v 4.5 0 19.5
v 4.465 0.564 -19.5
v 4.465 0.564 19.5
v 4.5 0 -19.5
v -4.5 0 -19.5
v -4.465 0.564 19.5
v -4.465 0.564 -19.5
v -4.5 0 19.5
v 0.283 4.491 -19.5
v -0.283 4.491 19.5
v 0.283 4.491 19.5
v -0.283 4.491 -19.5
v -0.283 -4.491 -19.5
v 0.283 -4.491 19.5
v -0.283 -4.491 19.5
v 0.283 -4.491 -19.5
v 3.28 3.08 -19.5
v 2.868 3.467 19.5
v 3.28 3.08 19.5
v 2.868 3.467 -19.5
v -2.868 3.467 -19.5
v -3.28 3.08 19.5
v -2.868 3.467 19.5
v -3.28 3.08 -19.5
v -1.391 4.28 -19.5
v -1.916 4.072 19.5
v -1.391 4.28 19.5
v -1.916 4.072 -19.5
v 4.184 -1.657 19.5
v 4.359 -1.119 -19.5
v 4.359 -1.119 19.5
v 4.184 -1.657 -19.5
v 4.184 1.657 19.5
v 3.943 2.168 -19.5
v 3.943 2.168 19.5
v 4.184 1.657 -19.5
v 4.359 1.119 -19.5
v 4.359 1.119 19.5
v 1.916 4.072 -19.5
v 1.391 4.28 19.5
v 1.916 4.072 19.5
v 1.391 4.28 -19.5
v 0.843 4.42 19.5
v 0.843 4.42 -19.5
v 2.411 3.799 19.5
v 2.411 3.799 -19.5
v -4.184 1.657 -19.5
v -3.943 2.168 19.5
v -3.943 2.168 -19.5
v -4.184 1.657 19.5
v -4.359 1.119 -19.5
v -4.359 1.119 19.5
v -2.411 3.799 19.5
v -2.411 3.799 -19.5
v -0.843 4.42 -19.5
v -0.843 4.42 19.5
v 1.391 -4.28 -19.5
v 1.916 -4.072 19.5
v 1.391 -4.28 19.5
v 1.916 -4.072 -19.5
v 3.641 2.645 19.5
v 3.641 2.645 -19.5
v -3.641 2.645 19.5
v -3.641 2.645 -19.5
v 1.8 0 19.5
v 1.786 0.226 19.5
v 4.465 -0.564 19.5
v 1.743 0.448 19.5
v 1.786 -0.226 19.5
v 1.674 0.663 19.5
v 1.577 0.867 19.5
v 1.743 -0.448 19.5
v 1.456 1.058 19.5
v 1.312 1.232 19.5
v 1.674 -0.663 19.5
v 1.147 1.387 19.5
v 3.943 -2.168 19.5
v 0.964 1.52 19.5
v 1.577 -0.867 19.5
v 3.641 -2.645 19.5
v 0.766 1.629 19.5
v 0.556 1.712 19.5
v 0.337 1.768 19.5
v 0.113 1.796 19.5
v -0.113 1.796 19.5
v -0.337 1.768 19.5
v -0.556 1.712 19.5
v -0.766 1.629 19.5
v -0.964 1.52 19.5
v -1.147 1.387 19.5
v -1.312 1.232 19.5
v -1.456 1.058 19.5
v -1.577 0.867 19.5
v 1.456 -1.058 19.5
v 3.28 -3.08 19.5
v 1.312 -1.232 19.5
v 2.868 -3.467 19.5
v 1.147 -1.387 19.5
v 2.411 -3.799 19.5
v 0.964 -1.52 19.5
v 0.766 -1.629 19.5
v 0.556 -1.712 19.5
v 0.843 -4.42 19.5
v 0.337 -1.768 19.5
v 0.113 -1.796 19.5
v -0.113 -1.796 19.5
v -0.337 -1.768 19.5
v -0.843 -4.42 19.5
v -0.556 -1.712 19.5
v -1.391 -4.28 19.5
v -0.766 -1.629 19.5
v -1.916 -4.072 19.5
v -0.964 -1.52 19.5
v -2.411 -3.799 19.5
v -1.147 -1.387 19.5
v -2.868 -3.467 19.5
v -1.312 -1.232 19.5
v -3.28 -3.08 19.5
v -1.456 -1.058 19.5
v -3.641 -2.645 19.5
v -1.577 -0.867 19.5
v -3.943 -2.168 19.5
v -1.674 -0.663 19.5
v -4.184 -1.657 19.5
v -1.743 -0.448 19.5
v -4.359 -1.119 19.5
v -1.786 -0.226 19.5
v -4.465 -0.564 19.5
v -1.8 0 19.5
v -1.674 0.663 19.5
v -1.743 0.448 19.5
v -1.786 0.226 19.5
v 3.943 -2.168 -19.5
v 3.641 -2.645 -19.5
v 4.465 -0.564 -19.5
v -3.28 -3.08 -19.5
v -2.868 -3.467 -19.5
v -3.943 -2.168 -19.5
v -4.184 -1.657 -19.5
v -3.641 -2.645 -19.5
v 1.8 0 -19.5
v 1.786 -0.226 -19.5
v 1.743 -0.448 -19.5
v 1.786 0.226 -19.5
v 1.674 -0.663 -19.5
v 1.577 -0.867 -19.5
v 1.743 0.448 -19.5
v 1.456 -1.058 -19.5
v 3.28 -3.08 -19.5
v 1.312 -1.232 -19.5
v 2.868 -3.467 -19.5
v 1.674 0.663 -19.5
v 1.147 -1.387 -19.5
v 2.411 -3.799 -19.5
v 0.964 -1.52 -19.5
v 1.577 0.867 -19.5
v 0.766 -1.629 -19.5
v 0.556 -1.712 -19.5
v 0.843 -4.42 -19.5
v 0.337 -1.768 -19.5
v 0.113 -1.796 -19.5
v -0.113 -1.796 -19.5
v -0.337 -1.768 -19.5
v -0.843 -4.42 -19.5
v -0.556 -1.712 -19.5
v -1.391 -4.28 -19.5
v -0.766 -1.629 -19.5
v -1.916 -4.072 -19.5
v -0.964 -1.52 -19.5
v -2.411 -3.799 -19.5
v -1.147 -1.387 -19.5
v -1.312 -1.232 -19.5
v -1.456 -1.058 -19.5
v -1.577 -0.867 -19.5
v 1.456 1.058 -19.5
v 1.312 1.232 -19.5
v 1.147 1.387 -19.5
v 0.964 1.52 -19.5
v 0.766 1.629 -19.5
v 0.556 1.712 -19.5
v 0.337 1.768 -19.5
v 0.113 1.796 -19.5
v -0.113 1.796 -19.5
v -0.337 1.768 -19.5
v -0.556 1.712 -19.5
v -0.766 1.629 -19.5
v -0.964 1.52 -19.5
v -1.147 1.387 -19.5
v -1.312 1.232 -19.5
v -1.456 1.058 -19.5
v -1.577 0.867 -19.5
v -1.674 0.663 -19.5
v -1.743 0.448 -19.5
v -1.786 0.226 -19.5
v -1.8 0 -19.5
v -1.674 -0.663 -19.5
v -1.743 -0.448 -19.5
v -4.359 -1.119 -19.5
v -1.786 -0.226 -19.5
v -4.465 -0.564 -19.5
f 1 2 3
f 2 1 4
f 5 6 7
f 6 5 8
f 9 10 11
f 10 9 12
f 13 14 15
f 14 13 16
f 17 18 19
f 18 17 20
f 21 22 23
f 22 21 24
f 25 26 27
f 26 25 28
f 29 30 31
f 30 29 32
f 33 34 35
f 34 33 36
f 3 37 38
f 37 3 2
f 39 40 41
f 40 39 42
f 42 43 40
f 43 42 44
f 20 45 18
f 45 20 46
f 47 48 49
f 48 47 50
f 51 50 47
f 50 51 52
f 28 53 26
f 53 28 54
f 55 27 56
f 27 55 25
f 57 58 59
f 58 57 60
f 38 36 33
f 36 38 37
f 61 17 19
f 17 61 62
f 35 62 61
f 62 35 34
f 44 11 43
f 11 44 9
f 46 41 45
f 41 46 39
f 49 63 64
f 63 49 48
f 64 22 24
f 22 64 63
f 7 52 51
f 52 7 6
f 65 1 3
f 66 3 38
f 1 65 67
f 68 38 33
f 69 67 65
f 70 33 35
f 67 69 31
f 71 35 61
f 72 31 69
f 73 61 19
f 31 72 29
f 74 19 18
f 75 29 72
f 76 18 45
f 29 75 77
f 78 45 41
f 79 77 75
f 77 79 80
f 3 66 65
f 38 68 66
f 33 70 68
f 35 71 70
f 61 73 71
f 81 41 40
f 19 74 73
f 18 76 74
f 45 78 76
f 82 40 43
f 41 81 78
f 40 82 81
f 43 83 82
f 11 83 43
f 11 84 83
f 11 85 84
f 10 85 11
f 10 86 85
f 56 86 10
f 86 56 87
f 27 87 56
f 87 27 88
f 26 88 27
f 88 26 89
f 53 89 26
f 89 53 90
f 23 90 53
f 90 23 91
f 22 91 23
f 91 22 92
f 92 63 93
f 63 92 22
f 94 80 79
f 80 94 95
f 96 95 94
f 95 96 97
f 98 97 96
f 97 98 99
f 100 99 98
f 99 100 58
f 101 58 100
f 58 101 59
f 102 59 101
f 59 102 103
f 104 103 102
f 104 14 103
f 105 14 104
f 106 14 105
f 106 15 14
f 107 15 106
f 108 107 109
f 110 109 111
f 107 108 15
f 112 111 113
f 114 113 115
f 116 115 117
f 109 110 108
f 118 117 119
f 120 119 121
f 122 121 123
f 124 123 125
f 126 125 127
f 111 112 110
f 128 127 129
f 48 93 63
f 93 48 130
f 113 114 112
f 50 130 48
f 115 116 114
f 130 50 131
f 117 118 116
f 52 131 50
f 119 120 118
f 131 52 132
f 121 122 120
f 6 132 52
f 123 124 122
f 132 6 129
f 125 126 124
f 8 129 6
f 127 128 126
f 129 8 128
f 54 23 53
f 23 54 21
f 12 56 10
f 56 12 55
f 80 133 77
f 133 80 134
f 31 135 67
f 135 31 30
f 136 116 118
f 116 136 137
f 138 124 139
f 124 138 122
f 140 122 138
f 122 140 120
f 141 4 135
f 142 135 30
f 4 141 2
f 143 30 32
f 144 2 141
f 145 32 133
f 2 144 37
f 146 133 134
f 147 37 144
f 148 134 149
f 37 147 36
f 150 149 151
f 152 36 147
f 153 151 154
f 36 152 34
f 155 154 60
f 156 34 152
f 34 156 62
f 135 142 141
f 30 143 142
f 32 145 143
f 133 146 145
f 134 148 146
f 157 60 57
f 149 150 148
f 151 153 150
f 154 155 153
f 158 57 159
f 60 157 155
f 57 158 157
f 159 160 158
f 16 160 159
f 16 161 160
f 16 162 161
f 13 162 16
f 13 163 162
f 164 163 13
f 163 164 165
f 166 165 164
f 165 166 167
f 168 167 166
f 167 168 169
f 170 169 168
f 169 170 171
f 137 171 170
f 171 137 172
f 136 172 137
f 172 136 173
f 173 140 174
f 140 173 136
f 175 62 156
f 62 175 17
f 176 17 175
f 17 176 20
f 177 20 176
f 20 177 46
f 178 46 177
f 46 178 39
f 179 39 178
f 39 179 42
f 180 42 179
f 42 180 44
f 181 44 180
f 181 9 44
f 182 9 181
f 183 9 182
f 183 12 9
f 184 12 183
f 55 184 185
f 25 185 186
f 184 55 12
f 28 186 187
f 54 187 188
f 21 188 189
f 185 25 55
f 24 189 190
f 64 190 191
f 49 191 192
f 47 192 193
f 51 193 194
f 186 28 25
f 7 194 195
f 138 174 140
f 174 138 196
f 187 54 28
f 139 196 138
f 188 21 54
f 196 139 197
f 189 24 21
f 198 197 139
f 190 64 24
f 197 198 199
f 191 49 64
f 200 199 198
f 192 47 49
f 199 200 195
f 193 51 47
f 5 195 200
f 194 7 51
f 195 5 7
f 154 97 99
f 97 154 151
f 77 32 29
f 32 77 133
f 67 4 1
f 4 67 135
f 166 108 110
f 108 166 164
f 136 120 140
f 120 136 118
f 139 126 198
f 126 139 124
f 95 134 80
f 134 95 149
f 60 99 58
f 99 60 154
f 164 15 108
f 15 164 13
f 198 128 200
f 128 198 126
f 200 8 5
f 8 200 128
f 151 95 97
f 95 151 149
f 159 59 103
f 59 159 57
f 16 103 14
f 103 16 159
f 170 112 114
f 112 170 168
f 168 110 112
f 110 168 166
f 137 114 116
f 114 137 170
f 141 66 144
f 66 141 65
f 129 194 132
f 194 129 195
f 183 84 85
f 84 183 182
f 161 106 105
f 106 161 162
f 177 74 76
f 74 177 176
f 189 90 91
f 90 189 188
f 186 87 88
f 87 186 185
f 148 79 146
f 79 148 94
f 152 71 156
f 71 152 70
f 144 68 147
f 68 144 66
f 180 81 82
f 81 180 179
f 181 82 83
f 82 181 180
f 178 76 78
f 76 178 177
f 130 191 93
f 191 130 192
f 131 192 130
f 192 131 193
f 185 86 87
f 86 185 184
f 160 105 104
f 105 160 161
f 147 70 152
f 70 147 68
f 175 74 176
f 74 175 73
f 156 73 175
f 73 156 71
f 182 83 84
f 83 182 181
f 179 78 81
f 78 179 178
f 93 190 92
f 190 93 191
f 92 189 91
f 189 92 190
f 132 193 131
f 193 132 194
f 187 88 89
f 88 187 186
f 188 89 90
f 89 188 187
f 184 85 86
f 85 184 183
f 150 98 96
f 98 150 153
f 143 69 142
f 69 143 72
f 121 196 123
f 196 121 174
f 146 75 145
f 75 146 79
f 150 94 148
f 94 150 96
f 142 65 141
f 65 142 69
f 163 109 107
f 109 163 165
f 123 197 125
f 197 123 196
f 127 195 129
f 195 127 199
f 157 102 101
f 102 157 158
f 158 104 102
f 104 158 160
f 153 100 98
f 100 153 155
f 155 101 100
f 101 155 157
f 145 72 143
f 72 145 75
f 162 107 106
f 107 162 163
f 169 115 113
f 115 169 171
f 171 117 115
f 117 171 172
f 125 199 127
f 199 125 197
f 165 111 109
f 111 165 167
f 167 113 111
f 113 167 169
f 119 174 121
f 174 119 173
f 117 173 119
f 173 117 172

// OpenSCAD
$fn = 50;


difference() {
	union() {
		translate(v = [0, 0, -19.5000000000]) {
			cylinder(h = 39, r = 4.5000000000);
		}
	}
	union() {
		translate(v = [0, 0, -100.0000000000]) {
			cylinder(h = 200, r = 1.8000000000);
		}
	}
}
